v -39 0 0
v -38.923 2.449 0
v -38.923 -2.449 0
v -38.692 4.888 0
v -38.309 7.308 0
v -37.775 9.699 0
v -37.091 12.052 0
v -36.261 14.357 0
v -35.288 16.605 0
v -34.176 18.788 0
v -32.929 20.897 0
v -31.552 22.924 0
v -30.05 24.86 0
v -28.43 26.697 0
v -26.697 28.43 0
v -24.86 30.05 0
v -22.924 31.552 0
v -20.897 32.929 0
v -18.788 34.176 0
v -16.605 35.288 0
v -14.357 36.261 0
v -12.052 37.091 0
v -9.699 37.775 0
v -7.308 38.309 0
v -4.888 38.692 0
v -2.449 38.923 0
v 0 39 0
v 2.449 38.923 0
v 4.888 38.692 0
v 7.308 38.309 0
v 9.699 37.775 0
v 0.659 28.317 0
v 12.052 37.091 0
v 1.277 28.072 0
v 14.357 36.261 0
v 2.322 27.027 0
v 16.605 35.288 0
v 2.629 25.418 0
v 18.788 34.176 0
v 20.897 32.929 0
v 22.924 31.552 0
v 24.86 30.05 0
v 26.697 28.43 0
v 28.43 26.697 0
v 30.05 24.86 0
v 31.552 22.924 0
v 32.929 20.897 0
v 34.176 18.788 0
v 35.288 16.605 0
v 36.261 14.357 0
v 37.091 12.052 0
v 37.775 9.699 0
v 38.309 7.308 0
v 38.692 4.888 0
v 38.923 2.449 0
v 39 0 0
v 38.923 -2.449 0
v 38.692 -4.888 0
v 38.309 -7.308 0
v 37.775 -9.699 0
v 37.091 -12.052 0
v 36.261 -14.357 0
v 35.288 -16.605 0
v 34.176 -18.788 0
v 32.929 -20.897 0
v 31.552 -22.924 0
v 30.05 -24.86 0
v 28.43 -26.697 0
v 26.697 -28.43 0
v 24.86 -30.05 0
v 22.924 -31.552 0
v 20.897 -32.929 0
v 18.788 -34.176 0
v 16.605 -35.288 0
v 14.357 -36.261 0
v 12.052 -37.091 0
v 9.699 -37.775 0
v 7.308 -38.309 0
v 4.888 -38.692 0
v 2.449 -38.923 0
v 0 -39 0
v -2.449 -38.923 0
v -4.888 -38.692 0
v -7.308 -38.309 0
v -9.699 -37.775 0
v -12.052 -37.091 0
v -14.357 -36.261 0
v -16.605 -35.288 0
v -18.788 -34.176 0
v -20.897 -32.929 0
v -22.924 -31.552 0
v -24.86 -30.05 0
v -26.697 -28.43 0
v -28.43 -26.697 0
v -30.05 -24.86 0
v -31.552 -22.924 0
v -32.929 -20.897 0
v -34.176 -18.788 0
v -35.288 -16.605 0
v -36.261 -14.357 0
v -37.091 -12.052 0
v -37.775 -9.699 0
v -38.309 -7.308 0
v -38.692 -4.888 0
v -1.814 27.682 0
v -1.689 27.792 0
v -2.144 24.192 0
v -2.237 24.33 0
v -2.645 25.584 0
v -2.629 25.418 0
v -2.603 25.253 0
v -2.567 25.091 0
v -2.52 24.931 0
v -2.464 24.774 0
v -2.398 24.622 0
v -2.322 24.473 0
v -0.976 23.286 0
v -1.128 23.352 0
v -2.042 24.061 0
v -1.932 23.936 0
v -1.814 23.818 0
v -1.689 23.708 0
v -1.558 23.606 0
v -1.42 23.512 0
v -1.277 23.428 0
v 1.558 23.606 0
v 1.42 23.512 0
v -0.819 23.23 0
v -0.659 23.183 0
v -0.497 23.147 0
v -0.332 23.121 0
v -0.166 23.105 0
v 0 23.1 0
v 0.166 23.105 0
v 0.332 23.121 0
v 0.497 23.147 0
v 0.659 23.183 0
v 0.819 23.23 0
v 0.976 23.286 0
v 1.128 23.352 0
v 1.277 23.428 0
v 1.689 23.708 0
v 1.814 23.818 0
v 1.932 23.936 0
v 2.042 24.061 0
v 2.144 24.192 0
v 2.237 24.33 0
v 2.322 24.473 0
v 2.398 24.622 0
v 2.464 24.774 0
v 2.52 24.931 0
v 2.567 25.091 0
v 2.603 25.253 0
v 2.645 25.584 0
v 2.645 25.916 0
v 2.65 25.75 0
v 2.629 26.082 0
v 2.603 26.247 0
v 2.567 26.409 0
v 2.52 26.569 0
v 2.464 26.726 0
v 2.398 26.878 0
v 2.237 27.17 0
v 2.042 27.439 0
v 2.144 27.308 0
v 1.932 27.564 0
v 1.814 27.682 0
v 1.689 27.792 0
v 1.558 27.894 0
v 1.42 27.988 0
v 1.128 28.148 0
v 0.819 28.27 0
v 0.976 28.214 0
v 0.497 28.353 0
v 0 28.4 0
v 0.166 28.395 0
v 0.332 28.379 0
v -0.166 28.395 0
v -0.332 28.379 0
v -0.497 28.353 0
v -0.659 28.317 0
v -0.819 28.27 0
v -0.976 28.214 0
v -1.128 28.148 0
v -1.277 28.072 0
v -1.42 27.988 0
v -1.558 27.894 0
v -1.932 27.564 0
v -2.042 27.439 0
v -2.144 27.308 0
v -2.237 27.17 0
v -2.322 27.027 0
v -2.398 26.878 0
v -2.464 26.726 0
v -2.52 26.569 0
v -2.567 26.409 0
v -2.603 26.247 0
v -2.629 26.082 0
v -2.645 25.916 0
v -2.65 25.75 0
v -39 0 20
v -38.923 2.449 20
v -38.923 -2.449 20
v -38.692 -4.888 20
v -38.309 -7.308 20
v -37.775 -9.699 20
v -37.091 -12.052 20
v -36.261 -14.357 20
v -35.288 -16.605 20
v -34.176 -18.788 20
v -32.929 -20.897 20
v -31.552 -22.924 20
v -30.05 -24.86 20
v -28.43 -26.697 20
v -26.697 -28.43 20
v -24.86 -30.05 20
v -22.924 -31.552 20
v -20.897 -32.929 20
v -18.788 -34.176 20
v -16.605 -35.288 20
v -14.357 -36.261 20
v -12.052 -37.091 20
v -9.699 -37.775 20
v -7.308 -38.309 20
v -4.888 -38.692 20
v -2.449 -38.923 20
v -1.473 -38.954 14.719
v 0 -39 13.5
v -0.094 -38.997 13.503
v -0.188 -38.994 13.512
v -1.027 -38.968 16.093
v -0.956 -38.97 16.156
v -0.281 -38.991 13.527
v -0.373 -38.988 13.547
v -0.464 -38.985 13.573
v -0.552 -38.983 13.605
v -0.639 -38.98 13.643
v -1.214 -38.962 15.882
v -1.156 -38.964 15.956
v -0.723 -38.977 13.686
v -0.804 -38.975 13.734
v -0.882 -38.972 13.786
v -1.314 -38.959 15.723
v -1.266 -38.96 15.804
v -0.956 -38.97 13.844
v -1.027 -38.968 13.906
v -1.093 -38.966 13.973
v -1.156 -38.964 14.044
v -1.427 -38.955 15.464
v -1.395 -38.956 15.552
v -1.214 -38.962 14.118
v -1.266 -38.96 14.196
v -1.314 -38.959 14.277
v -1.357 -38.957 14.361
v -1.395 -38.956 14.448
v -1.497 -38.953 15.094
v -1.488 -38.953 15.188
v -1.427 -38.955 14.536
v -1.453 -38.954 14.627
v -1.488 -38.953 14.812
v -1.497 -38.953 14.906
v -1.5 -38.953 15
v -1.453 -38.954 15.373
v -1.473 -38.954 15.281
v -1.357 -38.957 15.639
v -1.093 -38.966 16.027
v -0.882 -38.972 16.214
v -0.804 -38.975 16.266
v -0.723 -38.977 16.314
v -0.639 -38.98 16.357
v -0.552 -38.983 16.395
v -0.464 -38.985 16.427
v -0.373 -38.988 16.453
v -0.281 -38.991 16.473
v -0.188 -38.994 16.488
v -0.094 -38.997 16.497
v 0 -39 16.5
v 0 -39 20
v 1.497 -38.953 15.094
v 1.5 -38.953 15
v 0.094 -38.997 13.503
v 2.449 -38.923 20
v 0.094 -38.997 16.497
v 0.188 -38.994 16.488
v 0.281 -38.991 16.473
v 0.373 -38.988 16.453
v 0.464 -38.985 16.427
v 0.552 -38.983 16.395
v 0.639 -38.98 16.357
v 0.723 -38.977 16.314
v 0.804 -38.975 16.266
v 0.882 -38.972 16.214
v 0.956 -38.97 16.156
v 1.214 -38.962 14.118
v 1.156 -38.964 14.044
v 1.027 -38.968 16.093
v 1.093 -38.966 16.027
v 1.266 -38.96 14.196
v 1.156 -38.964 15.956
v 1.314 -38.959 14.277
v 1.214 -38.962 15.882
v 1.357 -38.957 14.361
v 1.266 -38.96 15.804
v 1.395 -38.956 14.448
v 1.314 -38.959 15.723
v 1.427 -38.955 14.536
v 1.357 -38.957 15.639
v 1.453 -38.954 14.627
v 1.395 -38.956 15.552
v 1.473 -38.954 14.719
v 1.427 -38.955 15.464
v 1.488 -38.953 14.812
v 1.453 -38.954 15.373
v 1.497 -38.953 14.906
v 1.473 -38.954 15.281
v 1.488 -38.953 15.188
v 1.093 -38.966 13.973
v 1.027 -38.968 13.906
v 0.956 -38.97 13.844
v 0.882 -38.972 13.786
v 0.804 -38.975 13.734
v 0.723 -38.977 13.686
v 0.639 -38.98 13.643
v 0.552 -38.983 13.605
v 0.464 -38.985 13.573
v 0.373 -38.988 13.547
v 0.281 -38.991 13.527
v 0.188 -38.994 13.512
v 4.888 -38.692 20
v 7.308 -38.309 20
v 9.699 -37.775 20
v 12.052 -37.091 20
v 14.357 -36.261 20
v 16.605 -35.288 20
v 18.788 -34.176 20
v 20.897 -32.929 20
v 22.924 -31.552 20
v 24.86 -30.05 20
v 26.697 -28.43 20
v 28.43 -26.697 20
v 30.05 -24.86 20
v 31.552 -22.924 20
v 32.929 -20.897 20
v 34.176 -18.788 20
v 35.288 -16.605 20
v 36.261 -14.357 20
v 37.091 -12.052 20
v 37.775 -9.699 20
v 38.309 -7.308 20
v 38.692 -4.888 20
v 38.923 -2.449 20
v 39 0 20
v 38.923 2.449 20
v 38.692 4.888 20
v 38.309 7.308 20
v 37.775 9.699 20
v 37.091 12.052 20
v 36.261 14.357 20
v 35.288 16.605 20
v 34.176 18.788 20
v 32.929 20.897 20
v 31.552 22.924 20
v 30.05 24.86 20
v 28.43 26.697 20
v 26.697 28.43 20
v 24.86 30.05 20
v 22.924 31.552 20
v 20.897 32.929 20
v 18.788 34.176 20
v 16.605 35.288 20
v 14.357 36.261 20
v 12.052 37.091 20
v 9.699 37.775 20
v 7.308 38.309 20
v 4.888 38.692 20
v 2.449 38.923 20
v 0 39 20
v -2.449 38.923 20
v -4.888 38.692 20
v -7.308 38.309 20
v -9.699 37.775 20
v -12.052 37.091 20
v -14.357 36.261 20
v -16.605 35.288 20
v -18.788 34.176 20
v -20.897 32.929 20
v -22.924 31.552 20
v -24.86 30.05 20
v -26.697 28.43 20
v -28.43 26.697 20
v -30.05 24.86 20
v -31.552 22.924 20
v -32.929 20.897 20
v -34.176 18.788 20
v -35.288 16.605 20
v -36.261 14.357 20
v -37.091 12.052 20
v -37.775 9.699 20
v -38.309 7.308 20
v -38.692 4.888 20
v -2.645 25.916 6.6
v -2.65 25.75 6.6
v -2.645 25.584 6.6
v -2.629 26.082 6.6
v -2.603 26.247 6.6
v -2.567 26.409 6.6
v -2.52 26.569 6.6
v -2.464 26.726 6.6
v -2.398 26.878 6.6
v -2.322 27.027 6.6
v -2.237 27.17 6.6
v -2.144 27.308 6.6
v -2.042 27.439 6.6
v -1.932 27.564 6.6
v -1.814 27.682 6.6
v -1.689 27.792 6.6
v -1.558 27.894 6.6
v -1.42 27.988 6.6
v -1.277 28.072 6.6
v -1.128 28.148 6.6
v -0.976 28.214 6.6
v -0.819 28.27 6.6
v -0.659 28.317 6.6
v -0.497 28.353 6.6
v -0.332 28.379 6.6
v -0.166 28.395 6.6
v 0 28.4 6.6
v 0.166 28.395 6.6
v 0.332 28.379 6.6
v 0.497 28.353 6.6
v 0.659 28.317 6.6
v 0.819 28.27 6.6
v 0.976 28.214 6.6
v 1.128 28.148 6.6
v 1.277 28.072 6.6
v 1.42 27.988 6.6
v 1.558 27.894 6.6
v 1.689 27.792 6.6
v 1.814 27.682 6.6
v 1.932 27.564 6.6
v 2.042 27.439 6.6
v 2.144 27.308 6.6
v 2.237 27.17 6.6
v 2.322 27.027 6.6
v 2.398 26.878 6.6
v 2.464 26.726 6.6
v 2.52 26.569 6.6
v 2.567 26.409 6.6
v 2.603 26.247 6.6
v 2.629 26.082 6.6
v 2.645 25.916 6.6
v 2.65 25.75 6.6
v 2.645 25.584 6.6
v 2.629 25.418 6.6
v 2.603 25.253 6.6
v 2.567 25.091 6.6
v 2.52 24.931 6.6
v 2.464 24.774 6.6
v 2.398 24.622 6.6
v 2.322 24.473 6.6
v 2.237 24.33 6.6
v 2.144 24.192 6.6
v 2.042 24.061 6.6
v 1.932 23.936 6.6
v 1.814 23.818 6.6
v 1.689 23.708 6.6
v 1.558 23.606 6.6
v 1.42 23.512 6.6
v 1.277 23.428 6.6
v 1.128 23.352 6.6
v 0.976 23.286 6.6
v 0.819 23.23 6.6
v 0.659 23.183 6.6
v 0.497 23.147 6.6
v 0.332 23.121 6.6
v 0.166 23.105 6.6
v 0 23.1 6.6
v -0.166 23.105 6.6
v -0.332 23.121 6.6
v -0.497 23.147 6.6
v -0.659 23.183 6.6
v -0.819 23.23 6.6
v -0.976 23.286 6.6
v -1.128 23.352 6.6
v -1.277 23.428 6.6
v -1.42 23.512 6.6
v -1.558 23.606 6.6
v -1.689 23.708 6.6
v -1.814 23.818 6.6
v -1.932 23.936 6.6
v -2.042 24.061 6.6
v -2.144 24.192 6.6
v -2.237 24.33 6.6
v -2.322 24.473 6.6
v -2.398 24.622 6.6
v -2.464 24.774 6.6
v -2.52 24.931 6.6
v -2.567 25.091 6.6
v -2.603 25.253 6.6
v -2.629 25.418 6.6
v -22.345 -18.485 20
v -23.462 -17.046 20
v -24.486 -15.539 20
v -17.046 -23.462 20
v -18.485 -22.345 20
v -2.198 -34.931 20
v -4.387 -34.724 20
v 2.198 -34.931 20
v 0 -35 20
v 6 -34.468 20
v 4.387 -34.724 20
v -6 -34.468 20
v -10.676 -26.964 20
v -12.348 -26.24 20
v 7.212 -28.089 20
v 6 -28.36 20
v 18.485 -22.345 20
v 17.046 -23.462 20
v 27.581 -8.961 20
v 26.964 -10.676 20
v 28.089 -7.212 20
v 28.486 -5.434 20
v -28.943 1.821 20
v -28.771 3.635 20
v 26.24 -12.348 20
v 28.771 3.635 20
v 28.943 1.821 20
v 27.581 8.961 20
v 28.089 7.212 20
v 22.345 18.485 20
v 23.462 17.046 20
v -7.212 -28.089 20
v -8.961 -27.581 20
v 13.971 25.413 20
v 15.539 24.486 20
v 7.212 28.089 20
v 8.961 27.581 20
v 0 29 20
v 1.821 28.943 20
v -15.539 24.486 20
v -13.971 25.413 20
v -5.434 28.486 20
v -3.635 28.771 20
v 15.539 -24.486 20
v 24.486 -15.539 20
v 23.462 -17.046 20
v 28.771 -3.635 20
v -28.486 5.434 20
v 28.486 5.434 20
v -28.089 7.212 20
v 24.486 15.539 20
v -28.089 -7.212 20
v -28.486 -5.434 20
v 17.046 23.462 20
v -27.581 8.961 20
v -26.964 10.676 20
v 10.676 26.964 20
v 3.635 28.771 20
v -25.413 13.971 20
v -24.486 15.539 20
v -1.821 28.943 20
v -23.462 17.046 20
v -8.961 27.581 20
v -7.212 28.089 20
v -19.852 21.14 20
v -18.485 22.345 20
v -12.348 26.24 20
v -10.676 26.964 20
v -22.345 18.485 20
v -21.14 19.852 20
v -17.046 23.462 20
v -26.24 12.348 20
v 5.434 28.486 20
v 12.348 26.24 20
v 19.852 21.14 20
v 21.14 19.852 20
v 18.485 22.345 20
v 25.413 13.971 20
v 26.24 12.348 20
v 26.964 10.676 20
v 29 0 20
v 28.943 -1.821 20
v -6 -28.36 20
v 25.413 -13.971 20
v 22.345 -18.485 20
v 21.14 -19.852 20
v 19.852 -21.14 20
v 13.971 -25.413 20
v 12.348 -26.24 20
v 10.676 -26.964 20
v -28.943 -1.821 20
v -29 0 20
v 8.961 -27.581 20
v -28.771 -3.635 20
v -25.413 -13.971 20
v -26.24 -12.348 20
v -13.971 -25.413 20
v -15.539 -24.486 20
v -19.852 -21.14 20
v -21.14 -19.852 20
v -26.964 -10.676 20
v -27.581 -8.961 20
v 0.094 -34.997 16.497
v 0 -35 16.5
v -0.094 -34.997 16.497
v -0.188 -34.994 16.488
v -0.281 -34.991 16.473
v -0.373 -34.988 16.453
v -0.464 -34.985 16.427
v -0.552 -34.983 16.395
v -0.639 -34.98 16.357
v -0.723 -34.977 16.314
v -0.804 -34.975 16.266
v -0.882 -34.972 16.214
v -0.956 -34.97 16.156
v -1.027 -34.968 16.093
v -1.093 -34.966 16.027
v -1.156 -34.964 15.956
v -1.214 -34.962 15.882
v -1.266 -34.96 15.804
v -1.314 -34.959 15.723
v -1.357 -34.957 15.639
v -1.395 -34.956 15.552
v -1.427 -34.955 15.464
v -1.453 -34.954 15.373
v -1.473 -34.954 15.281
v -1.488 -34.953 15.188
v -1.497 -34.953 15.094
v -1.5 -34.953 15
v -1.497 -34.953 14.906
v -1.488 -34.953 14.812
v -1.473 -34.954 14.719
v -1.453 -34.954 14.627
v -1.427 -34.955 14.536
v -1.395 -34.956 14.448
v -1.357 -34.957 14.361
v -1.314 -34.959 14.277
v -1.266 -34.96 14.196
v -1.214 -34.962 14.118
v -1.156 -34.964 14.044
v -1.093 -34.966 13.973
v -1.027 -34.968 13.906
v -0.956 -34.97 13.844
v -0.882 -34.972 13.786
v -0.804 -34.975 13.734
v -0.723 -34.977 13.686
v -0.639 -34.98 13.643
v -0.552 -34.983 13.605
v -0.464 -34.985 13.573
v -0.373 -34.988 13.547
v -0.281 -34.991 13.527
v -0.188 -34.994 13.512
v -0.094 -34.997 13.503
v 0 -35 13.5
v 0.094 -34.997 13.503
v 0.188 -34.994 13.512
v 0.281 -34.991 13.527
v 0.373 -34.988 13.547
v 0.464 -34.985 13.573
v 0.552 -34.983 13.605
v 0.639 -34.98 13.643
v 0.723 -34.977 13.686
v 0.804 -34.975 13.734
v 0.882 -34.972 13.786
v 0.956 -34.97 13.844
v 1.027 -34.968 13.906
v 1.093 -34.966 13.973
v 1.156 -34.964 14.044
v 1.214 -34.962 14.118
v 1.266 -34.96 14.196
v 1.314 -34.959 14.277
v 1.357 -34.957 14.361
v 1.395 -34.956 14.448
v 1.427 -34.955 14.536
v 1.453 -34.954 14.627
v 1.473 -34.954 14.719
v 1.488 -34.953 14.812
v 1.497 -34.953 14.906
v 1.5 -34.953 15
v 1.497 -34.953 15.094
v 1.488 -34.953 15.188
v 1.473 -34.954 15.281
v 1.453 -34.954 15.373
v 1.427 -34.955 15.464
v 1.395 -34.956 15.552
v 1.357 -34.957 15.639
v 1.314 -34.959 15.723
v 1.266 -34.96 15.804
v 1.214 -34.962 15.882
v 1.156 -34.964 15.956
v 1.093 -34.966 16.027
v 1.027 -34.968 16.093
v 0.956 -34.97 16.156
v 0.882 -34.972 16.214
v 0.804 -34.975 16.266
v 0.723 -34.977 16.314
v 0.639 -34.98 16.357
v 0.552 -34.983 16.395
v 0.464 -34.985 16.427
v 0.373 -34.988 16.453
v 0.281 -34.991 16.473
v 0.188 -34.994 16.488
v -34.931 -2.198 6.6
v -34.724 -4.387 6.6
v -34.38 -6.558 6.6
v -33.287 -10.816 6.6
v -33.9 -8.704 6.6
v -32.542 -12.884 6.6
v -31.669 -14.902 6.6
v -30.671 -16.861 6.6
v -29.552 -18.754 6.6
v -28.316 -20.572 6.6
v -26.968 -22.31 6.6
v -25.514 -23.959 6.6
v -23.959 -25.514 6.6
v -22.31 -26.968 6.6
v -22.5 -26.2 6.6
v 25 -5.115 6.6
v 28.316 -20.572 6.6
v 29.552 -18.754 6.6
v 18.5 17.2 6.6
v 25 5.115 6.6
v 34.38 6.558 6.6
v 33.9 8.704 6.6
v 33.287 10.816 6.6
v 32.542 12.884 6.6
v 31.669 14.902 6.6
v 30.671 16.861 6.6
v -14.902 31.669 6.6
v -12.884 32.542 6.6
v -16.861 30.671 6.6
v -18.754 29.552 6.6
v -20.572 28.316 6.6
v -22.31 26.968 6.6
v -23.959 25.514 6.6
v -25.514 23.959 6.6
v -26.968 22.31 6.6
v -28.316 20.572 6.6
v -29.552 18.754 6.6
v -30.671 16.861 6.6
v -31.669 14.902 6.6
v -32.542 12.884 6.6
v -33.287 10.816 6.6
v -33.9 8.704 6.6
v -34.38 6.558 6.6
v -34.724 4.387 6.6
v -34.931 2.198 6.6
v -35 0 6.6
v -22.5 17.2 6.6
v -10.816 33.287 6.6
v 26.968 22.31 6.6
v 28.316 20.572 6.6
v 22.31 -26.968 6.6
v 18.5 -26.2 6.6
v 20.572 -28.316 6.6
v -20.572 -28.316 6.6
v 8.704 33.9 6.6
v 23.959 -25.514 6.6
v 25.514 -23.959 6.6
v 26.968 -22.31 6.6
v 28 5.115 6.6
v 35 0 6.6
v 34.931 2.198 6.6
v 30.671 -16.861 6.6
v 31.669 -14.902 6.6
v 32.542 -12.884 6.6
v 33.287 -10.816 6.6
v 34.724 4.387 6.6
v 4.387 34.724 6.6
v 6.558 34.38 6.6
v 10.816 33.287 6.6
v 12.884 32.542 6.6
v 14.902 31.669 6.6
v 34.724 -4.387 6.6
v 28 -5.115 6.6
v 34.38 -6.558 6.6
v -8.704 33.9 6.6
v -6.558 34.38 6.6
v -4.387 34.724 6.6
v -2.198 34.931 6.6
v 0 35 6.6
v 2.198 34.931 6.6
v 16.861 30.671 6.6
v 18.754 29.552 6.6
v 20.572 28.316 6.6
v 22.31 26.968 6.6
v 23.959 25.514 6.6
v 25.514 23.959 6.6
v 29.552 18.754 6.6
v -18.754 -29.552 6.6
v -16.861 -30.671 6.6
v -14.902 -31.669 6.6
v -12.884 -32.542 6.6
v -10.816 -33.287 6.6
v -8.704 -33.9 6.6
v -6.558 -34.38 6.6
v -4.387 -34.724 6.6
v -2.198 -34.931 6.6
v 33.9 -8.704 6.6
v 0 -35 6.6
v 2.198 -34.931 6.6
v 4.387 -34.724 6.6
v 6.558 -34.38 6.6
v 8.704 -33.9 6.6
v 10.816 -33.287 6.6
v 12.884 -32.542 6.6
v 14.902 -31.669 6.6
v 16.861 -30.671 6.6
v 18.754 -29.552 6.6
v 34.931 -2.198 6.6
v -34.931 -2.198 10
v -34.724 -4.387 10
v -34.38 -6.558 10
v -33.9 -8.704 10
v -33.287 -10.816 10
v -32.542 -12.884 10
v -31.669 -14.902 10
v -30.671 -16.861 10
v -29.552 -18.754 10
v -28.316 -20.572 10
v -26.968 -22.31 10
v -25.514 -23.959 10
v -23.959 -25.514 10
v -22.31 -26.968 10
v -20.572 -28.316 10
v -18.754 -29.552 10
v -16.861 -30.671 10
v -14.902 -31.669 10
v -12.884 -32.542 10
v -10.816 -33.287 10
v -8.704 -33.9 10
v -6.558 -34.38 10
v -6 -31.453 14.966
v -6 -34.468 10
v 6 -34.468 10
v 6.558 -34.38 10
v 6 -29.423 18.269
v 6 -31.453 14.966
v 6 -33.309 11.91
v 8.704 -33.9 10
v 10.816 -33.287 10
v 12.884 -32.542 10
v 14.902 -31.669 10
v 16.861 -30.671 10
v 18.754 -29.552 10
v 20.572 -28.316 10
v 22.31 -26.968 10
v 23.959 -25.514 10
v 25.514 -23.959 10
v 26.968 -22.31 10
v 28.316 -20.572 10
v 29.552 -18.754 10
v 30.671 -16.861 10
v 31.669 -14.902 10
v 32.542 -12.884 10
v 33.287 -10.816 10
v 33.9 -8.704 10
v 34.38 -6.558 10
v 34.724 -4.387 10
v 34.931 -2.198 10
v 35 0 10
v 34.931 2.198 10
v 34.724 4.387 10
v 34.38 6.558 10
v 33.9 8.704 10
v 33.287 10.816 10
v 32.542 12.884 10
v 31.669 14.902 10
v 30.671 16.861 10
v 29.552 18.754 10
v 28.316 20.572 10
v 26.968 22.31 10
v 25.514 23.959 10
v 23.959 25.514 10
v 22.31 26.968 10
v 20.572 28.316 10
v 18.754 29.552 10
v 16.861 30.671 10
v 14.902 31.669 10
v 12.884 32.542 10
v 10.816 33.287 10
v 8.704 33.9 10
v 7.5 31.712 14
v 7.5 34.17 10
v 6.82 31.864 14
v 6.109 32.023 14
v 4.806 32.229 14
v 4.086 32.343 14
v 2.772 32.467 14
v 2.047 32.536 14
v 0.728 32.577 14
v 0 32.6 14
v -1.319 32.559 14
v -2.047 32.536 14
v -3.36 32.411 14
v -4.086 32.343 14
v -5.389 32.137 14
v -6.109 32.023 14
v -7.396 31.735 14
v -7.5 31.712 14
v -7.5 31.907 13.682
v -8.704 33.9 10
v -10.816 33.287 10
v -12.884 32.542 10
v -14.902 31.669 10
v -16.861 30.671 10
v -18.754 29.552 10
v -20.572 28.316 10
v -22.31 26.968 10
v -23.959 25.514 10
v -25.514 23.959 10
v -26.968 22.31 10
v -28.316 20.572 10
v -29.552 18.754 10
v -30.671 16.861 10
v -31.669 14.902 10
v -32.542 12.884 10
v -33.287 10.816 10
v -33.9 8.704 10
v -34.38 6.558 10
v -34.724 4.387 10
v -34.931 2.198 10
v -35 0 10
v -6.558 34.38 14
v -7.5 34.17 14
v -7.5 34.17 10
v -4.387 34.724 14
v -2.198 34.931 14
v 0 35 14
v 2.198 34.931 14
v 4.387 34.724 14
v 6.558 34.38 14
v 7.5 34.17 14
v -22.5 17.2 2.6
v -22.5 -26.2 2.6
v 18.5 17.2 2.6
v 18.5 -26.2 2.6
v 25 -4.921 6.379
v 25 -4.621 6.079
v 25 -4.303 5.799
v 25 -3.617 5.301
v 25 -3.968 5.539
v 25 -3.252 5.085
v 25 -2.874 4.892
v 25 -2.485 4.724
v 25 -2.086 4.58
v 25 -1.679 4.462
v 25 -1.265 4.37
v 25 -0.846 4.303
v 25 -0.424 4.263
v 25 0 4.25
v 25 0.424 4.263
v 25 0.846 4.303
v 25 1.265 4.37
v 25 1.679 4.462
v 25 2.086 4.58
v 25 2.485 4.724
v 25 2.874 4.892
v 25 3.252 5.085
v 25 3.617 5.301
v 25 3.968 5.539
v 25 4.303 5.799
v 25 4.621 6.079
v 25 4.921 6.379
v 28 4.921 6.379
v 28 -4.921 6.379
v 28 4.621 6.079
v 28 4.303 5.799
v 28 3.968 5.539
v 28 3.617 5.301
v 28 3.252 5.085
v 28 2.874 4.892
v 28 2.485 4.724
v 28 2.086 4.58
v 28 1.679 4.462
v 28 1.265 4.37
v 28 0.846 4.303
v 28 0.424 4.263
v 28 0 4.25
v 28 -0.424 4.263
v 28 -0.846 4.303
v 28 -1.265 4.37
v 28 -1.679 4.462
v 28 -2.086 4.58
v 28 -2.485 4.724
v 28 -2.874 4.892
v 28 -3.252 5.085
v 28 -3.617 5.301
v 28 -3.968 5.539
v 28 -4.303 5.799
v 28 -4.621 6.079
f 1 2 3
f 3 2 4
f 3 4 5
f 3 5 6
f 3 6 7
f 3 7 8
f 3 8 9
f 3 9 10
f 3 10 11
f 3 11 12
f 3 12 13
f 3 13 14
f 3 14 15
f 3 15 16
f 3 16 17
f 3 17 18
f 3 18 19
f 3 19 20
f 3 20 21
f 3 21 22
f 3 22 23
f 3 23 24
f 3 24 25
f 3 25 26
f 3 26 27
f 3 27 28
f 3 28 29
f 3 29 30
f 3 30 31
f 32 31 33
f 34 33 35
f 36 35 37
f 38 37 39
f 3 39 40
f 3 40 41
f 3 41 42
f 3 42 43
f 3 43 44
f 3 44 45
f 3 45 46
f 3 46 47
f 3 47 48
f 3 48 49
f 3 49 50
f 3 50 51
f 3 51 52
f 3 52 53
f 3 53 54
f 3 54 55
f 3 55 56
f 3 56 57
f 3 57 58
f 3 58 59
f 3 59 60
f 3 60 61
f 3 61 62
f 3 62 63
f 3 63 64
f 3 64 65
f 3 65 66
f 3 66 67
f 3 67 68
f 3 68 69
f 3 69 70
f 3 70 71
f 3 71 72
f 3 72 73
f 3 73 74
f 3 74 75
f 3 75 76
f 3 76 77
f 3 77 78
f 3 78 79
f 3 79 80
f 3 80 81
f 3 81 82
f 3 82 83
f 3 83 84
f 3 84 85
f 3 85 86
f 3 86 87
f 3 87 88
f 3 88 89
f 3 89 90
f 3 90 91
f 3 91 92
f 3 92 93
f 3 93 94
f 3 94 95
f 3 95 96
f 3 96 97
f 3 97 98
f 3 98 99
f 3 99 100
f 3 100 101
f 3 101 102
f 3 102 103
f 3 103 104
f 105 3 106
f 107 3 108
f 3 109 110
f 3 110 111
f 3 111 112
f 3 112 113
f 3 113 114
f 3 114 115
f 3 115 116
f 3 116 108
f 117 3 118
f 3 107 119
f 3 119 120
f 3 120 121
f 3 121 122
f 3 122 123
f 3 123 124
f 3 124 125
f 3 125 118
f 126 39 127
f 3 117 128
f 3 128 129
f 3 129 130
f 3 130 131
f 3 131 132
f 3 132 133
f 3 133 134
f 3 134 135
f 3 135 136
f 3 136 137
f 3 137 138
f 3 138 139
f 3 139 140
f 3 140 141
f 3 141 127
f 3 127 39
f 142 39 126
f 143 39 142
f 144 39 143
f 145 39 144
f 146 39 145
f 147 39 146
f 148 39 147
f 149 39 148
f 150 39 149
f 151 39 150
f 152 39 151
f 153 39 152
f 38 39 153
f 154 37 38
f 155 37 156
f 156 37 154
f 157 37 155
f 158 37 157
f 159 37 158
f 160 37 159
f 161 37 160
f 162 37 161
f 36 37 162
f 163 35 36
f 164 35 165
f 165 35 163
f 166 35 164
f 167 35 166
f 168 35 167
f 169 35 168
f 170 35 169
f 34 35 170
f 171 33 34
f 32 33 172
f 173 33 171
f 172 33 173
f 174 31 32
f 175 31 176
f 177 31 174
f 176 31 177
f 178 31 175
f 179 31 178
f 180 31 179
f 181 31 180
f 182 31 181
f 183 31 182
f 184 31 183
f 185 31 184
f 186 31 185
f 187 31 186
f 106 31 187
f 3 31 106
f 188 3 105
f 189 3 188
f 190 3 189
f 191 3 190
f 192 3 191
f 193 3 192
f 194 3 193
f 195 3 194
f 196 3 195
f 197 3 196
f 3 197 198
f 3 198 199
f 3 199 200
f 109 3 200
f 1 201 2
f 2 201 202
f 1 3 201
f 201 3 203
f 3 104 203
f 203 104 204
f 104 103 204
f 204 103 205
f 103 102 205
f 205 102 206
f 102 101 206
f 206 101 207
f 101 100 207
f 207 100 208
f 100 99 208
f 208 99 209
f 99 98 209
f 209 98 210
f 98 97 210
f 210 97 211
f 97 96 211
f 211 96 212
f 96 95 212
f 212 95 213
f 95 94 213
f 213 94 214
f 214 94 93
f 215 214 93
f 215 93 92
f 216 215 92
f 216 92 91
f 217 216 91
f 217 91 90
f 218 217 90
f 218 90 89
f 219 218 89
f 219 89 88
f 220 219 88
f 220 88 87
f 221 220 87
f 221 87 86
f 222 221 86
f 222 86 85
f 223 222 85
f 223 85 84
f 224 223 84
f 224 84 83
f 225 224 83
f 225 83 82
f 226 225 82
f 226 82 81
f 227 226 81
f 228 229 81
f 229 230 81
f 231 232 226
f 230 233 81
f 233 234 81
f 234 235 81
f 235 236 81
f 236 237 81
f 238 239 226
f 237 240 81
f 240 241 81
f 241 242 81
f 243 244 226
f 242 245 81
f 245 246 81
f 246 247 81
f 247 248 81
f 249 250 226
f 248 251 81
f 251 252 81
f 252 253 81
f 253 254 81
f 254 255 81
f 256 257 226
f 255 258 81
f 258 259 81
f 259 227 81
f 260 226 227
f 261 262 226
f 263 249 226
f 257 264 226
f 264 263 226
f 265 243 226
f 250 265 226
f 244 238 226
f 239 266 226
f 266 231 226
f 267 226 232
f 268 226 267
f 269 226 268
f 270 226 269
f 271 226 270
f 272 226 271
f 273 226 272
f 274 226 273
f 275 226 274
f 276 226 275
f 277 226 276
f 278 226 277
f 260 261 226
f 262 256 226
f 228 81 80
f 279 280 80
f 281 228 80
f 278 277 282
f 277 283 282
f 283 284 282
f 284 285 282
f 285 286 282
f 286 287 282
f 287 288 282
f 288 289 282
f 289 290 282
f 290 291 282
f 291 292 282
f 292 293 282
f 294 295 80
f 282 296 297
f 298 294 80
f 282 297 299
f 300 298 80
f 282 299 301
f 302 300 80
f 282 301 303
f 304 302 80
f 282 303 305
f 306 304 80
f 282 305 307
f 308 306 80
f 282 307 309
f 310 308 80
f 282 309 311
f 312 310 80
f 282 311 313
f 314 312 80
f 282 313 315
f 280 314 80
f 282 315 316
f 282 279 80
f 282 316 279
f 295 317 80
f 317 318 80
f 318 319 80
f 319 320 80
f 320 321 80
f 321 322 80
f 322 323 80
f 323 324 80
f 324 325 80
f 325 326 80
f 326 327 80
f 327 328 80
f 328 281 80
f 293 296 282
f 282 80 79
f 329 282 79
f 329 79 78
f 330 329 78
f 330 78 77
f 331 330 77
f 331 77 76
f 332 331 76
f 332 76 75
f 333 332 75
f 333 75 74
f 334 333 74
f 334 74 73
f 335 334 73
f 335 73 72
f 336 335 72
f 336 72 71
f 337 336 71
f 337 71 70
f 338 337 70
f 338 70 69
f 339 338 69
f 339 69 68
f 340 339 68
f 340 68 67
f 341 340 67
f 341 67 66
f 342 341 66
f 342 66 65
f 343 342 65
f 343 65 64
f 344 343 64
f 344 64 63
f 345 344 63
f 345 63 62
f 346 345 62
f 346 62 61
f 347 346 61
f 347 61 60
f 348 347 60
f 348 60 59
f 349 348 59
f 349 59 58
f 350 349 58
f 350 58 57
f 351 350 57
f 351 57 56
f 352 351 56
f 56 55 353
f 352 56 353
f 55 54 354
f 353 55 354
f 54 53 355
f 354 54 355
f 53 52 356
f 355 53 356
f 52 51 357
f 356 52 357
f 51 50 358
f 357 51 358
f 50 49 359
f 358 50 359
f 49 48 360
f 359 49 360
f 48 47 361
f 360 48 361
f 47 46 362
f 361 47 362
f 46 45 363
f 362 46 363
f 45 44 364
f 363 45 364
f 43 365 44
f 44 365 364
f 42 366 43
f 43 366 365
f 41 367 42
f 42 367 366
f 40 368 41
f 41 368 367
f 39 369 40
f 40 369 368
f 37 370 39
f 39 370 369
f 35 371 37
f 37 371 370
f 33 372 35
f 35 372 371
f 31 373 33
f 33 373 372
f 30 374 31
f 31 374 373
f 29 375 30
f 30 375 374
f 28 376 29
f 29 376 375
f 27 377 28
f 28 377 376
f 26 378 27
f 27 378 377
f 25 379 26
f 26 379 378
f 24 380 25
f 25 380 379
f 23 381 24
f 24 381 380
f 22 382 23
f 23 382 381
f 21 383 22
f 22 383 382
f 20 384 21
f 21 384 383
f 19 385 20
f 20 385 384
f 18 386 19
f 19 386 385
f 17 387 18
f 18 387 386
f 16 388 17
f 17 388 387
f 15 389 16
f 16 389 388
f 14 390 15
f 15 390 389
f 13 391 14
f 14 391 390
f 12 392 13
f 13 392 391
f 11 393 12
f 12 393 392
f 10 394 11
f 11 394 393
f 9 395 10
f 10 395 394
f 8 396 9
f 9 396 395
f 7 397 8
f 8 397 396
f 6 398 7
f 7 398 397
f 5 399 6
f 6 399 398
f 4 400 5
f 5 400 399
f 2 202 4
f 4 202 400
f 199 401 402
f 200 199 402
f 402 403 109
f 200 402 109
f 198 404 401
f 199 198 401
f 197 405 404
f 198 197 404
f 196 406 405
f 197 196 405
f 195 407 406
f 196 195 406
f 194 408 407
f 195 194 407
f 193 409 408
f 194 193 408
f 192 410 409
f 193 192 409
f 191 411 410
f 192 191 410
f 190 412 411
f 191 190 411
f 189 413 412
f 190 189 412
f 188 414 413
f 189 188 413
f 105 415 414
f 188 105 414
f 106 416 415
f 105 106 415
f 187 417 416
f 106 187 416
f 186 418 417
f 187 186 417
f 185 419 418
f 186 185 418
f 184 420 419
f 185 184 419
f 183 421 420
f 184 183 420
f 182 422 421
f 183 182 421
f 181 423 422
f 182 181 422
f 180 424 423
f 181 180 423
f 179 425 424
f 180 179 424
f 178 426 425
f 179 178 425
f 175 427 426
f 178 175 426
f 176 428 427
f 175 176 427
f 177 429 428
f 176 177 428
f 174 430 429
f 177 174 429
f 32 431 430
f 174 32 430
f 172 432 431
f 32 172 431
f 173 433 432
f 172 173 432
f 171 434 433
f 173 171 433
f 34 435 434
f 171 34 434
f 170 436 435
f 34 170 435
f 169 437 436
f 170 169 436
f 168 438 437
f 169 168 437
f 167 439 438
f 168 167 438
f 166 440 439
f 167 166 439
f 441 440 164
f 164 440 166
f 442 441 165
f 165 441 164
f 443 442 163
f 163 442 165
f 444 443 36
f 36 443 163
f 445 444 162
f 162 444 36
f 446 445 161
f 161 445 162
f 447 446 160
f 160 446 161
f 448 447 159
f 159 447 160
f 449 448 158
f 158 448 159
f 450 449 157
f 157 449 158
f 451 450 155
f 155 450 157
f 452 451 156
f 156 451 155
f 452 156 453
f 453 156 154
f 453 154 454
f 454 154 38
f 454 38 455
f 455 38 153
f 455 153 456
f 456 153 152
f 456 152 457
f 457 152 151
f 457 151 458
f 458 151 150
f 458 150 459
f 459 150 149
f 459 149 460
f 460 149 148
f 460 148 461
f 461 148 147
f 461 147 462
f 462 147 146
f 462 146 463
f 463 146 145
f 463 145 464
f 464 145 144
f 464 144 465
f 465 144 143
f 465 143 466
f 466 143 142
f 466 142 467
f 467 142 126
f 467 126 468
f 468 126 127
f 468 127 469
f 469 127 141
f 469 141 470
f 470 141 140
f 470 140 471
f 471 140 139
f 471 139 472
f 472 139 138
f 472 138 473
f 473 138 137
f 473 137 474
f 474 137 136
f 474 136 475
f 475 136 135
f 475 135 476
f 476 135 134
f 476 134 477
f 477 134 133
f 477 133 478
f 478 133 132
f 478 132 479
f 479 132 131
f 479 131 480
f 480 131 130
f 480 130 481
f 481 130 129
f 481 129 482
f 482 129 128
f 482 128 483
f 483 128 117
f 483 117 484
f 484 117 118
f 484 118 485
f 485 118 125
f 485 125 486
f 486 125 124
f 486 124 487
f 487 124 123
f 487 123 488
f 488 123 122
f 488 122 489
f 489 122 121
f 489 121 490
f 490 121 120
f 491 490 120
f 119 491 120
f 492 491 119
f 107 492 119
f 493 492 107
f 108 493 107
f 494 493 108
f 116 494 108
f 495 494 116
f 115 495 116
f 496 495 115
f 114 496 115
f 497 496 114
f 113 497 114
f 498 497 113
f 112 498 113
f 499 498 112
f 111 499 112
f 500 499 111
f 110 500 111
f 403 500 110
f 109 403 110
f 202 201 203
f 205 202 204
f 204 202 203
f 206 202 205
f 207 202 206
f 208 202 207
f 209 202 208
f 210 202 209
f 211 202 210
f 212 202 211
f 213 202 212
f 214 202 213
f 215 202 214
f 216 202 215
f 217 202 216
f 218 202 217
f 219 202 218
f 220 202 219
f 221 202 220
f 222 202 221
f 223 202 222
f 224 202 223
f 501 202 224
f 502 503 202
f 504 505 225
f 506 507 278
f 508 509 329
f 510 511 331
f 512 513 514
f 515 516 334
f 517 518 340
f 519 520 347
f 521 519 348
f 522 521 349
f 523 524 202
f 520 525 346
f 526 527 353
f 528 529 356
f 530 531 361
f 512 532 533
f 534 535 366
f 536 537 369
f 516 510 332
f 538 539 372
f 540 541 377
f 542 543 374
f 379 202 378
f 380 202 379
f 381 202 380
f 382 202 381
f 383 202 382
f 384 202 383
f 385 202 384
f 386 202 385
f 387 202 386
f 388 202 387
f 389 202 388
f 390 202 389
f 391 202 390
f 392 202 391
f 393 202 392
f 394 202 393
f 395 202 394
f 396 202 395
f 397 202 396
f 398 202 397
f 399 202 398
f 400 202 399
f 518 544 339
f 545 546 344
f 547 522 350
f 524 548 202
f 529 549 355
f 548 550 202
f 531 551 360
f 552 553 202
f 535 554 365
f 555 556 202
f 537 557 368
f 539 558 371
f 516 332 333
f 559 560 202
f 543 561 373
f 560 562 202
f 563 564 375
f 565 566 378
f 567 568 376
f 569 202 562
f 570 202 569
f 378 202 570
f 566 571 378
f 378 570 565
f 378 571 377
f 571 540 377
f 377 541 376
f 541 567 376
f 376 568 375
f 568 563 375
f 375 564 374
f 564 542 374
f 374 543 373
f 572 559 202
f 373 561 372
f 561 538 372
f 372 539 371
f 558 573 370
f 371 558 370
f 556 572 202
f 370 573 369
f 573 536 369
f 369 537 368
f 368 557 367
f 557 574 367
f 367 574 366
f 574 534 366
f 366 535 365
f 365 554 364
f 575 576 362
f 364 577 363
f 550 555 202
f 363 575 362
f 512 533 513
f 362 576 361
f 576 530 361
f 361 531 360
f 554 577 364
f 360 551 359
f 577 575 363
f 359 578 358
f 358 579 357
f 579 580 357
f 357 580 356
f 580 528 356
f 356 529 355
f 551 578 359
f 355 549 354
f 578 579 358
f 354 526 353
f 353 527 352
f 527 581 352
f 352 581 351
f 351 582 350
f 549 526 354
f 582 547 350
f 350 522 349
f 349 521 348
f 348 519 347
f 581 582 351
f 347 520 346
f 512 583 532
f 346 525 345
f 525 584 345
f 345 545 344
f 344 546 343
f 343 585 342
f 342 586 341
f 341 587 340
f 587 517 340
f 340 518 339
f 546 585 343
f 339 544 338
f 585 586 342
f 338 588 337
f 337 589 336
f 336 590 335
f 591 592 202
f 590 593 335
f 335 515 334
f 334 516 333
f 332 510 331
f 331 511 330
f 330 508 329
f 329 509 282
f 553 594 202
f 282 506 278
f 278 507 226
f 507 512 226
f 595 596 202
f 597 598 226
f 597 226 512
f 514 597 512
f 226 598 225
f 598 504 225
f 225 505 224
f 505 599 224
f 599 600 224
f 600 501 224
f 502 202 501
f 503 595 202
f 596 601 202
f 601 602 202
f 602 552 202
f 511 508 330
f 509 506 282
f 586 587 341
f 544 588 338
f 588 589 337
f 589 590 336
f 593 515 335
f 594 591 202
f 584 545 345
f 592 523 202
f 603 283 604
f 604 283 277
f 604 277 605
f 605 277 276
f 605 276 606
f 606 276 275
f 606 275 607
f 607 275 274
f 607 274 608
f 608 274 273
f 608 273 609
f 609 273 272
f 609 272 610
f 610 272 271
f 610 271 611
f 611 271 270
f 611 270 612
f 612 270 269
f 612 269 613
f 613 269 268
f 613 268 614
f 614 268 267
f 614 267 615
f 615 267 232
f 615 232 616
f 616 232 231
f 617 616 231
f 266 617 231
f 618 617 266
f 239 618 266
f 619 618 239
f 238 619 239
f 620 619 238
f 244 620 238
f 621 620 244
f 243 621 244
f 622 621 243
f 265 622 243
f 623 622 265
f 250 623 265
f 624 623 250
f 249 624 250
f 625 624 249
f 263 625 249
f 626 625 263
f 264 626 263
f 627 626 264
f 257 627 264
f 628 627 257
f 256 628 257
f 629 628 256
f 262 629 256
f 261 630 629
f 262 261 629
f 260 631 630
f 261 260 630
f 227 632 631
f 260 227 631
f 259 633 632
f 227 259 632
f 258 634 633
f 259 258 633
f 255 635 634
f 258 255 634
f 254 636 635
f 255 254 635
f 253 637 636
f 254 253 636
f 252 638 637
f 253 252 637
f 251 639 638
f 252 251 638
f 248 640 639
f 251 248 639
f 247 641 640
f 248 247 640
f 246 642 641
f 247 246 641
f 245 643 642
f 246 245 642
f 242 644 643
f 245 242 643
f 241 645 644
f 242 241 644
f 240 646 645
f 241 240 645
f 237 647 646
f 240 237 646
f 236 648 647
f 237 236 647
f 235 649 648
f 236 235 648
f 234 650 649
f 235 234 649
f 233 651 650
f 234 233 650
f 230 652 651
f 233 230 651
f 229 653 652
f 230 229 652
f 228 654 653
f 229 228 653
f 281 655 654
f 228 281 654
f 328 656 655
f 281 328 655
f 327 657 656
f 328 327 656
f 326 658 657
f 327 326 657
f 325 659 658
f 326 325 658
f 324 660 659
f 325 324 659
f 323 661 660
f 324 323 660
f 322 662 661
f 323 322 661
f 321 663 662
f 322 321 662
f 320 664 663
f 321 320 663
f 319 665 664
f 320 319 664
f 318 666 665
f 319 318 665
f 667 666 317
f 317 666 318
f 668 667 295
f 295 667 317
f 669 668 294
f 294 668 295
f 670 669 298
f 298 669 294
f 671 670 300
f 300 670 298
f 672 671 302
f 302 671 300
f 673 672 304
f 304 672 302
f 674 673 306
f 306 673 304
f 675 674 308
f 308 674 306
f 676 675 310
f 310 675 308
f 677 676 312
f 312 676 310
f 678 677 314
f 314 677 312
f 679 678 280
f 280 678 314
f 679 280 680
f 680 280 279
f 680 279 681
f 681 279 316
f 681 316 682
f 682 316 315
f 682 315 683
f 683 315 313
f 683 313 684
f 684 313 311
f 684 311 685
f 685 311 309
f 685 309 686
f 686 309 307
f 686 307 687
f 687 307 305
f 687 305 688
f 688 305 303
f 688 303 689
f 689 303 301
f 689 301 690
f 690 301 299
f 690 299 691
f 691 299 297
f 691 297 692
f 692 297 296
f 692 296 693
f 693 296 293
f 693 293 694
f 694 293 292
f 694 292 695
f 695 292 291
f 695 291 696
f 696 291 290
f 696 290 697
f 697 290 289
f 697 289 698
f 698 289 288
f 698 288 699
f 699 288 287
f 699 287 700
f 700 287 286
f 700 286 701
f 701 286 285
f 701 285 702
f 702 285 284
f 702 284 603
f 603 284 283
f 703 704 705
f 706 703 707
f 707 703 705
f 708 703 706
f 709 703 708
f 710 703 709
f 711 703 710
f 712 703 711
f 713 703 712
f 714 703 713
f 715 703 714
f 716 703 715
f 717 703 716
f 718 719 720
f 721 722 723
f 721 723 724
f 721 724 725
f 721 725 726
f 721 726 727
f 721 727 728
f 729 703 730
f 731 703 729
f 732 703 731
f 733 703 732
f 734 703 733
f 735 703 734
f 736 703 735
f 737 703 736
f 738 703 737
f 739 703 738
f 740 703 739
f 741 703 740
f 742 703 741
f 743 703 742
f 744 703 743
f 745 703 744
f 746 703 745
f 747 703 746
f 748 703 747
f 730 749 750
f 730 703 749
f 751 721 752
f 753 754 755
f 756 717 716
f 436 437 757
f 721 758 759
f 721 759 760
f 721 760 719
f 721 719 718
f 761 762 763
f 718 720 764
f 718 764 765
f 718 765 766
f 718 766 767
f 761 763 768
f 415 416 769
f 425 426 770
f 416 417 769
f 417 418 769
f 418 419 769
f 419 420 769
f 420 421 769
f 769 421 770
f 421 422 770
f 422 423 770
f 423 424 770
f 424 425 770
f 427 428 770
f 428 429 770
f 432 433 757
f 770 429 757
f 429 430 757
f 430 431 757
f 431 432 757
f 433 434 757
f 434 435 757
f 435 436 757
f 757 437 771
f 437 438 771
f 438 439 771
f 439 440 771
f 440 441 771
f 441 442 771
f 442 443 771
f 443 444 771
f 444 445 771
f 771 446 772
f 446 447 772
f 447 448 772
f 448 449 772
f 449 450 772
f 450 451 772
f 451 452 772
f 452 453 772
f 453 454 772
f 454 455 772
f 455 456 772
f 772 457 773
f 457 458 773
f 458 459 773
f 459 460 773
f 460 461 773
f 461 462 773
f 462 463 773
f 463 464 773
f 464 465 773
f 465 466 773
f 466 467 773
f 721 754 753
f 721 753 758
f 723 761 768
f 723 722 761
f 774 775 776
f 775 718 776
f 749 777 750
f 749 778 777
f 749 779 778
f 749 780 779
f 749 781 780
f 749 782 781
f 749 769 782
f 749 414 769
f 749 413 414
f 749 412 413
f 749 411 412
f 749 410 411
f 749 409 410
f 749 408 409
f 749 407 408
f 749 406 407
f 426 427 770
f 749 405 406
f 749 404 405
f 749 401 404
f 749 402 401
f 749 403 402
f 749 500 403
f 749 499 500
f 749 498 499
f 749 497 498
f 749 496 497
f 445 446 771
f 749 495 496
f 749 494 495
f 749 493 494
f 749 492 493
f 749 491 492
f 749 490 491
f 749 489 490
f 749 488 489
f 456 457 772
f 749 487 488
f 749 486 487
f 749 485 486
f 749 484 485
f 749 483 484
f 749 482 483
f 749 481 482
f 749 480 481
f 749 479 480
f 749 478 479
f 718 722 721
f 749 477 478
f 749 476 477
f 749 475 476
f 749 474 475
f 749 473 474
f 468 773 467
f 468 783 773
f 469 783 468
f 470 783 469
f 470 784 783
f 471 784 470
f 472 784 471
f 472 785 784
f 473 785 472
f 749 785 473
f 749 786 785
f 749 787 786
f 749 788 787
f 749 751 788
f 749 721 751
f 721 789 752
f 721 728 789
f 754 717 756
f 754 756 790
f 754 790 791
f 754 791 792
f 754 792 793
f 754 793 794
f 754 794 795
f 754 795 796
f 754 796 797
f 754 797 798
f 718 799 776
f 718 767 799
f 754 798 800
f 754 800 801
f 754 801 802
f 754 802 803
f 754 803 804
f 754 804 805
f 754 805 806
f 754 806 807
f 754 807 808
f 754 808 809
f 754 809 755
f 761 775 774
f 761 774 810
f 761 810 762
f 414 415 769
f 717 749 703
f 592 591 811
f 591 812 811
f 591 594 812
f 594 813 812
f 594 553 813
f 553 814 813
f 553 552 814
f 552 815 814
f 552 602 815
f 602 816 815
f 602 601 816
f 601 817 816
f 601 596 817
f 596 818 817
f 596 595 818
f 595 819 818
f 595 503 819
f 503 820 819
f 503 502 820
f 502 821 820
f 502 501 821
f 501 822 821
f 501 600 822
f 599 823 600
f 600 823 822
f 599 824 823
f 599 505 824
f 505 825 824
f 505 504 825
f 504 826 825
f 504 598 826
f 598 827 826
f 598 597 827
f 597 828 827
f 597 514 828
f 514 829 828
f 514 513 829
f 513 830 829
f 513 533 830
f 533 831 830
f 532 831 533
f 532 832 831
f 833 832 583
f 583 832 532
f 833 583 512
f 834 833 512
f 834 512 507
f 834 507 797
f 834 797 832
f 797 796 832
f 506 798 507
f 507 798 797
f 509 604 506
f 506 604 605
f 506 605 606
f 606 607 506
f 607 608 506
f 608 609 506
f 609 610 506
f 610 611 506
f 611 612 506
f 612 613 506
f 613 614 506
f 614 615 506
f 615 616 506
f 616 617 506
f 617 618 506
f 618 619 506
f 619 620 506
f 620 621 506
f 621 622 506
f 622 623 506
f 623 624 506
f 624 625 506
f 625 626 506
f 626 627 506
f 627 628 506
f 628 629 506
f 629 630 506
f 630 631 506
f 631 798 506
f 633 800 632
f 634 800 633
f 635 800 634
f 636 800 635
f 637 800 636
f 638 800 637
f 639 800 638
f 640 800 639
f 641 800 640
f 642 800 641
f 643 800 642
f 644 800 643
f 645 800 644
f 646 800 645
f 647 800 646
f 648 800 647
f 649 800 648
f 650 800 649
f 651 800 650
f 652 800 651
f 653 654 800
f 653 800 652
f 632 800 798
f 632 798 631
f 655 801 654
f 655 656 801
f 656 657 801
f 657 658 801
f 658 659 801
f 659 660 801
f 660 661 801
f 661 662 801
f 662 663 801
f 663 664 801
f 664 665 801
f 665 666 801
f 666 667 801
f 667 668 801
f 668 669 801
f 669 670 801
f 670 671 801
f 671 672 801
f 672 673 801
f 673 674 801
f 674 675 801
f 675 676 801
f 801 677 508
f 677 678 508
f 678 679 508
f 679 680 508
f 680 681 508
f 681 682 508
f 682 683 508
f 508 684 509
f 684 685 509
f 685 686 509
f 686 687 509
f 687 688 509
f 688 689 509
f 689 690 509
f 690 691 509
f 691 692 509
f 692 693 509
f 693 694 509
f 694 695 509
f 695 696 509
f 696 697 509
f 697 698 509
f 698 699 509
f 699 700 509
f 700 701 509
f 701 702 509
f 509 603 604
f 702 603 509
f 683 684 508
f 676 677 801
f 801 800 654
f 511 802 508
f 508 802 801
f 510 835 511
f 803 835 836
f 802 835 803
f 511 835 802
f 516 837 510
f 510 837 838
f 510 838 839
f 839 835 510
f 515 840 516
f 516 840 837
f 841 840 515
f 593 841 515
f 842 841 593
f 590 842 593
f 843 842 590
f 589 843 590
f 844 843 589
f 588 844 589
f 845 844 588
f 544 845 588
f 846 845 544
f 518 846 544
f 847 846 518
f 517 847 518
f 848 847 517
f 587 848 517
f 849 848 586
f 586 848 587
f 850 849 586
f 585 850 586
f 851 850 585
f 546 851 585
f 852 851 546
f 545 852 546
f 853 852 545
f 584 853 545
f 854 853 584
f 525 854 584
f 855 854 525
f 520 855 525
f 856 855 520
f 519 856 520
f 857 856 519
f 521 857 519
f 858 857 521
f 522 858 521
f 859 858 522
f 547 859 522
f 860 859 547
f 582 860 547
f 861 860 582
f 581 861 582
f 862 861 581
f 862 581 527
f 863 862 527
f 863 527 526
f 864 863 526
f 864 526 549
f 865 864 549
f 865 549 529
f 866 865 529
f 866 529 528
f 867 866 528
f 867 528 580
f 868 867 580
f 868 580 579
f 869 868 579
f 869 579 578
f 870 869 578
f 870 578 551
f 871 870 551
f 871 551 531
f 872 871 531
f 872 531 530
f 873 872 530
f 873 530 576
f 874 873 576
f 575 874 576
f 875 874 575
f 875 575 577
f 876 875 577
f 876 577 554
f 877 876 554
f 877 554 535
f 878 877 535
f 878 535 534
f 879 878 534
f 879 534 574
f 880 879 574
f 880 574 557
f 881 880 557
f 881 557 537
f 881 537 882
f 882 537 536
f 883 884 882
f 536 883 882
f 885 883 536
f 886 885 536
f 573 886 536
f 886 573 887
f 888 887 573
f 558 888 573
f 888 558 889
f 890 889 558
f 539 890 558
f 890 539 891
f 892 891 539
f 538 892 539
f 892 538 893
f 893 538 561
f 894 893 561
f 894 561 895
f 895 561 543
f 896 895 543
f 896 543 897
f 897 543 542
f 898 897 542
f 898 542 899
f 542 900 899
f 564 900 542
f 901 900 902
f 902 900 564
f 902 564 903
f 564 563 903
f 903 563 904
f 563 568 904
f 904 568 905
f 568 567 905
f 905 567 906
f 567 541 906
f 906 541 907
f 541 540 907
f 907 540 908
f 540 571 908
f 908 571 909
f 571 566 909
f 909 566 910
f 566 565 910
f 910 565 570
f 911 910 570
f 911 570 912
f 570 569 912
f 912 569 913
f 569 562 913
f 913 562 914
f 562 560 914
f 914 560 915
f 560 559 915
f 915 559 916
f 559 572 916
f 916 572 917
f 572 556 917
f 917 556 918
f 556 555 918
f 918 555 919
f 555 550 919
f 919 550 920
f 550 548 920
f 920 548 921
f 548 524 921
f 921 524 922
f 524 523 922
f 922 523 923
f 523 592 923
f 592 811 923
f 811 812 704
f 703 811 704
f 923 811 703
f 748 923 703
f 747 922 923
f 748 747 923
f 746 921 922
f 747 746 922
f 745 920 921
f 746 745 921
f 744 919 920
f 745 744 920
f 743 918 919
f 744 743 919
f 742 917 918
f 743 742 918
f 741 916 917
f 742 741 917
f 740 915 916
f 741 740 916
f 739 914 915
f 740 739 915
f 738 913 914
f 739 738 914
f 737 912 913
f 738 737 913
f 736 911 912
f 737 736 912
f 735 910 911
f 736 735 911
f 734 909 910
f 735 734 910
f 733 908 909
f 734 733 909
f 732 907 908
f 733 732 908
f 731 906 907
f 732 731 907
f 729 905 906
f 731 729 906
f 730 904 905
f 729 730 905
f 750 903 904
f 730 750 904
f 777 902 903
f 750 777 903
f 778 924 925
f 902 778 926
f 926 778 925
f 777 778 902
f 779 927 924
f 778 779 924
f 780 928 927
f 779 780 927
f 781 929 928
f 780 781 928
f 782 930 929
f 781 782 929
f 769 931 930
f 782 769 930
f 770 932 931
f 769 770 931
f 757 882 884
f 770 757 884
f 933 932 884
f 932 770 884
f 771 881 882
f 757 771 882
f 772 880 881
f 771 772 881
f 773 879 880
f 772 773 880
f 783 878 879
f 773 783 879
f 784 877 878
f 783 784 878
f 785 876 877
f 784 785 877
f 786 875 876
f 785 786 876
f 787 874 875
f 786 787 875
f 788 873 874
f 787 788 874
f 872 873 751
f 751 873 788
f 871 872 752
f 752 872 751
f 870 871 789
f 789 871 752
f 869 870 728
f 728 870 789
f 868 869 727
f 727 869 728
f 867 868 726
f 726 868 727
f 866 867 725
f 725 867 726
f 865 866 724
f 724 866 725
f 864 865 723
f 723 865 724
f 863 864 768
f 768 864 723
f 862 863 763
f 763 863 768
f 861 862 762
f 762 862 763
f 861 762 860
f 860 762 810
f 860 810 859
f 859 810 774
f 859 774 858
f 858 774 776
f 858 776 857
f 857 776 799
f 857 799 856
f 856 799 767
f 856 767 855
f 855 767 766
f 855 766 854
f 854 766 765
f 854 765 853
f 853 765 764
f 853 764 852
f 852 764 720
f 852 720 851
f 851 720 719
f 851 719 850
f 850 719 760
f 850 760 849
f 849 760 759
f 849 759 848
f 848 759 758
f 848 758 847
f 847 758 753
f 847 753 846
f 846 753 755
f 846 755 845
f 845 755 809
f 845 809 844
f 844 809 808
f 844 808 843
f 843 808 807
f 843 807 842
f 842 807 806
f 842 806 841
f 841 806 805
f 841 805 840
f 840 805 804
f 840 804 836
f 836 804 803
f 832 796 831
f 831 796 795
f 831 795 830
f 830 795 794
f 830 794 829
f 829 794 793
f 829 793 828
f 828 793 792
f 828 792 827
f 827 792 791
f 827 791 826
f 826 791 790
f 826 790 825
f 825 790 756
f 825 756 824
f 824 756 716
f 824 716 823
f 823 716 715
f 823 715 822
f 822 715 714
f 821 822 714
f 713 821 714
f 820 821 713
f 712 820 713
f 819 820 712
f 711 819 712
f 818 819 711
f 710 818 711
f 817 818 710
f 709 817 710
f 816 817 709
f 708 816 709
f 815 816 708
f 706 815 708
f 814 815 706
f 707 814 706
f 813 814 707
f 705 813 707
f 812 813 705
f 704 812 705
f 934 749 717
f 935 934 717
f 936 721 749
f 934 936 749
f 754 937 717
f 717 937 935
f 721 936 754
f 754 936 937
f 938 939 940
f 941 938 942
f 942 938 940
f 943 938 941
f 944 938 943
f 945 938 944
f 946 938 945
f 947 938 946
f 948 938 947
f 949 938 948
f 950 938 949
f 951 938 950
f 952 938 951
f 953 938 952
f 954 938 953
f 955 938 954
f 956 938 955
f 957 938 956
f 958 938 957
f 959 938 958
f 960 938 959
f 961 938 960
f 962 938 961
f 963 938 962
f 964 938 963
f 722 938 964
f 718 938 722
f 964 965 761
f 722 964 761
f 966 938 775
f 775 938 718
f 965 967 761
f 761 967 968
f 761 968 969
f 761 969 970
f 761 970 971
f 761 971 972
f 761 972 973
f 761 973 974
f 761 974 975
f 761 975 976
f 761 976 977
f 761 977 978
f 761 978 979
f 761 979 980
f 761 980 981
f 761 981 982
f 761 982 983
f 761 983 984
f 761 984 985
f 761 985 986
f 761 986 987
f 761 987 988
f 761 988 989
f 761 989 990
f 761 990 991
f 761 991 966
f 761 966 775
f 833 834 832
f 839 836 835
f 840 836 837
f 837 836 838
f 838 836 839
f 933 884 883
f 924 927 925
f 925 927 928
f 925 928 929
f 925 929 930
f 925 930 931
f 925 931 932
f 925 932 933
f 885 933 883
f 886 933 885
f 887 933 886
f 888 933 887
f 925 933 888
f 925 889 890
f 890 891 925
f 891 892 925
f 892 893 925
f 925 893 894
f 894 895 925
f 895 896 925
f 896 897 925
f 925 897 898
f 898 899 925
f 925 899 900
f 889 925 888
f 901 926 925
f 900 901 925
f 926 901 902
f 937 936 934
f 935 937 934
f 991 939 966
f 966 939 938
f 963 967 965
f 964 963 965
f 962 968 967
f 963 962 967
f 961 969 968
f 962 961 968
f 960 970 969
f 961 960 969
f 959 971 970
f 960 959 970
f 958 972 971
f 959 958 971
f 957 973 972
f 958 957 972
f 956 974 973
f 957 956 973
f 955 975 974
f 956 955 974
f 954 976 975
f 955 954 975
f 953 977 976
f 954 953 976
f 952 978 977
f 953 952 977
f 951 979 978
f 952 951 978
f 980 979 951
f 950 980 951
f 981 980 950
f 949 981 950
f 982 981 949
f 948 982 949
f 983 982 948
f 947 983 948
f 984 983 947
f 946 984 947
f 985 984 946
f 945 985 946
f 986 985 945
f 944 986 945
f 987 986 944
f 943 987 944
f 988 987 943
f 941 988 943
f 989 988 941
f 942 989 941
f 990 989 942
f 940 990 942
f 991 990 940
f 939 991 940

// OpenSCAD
//////////////////
//Parameters
//////////////////
$fn = 100;
window_depth = 1.6;
window_diameter = 25;
window_lip_depth = 1;
window_lip_width = 3;
wall_thickness = 4;
cover_diameter = 78;
cover_height = 10;
board_width = 41;
board_height = 43.4;
board_thickness = 4;
board_x_shift = 2;
board_y_shift = 4.5;
led_diameter = 5.0;
circle_kerf = 0.3;
back_ring_height = 10;
back_ring_width = 10;
back_top_notch_width = 15;
back_top_notch_height = 4;
back_bottom_notch_width = 12;
back_bottom_notch_height = 10;
screw_hole_diameter = 3;
screw_offset = 5;
base_hole_diameter = 20;
base_kerf = 1.1;
mount_hole_diameter = 4.5;
nut_hole_length = 6.6;
nut_hole_width = 2.6;
buzzer_height = 3;
buzzer_diameter = 13.5;
buzzer_x_offset = 25;
buzzer_y_offset = 0;
buzzer_z_offset = 11;

///////////////////
// renders
///////////////////

//translate([0,0,cover_height+back_ring_height]) rotate(a=180,v=[0,1,0]) 
//	base_plate(cover_diameter);
rfid_cover(cover_diameter,cover_height);
//rotate(a=180,v=[1,0,0]) 
//rfid_window(window_diameter-circle_kerf,window_depth,window_lip_width-(circle_kerf/2),window_lip_depth);

// modules


module rfid_window(window_diameter,window_depth,lip_width,lip_thick) {
	cylinder(d=window_diameter,h=window_depth);
	translate([0,0,window_depth]) cylinder(d=(2*lip_width+window_diameter),h=lip_thick);

}

module rfid_cover(diameter,height) {
	front_height = window_depth+window_lip_depth;
   inner_height = height-(front_height+board_thickness);
   inner_diameter = (diameter-(2*wall_thickness));
	inner_back_diameter = (diameter-(back_ring_width*2));
   difference() {
		// Main body
		cylinder(d=diameter,h=height);
		// Create outside walls by subtracting a cylinder
		translate([0,0,(front_height+board_thickness)]) 
			cylinder(d=inner_diameter,h=inner_height+.1);
		// Remove material to create window lip
		//translate([0,0,window_depth])
		//	cylinder(d=(window_diameter+(window_lip_width*2)+circle_kerf),h=window_lip_depth+.1);
		// Remove matrial to create window opening
		//translate([0,0,0])
		//	cylinder(d=(window_diameter+circle_kerf),h=window_depth+.1);
		// Create opening for RFID board to sit inside of.
		translate([-(board_x_shift+board_width/2),-(board_y_shift+board_height/2),front_height])
			cube([board_width,board_height,board_thickness]);
		// Create a hole for LED
		translate([0,((cover_diameter/4)+(window_diameter/4)),0])
			cylinder(d=(led_diameter+circle_kerf),h=(front_height+board_thickness+.1));
		// Remove buzzer cavity
		translate([buzzer_x_offset,buzzer_y_offset,buzzer_z_offset])
			rotate(a=90,v=[0,1,0])
				cylinder(d=buzzer_diameter,h=buzzer_height);
	}
	difference() {
		// More base meat for transition
		translate([0,0,height])
			cylinder(d=diameter,h=back_ring_height);
		// Remove a cone section to make swept walls
		translate([0,0,height])
			cylinder(d1=inner_diameter,d2=inner_back_diameter,h=back_ring_height);
		// Remove the Top Notch (built of intersection of inner wall cylinder and cube for notch)
		intersection() {
			translate([0,0,height])
				cylinder(d=inner_diameter,h=back_ring_height);
			translate([-back_top_notch_width/2,0,height])
				cube([back_top_notch_width,diameter/2,back_top_notch_height]);
		}
		// Remove the Bottom Notch (built of intersection of inner wall cylinder and cube for notch)
		intersection() {
			translate([0,0,height])
				cylinder(d=inner_diameter,h=back_ring_height);
			translate([-back_bottom_notch_width/2,-diameter/2,(height+back_ring_height-back_bottom_notch_height)])
				cube([back_bottom_notch_width,diameter/2,back_bottom_notch_height]);
		}
		// Remove screw hole for bottom notch
		translate([0,0,(height+back_ring_height-screw_offset)])
			rotate(a=90,v=[1,0,0])
				cylinder(d=screw_hole_diameter,h=diameter);
	}

}

module base_plate(diameter) {
   inner_diameter = (diameter-(2*wall_thickness)-base_kerf);
	inner_back_diameter = (diameter-(back_ring_width*2))-base_kerf;
	nut_hole_offset = screw_offset-3.8;
	difference() {
		cylinder(d=inner_back_diameter,h=back_ring_height);
		cylinder(d=base_hole_diameter,h=back_ring_height);
		translate ([0,0,wall_thickness]) cylinder(d=inner_back_diameter-(2*wall_thickness),h=back_ring_height);
		for(r=[0:120:360]) {
			rotate(a=r,v=[0,0,1]) translate ([0,(inner_back_diameter/4)+(base_hole_diameter/4),0]) cylinder(h=back_ring_height,d=mount_hole_diameter);
		}
	}
	//  Top Notch (built of intersection of inner wall cylinder and cube for notch)
	intersection() {
		translate([0,0,0])
			cylinder(d=inner_diameter,h=back_ring_height);
		translate([-((back_top_notch_width/2)-base_kerf),(inner_back_diameter/2)-wall_thickness,back_ring_height-back_top_notch_height])
			cube([back_top_notch_width-(base_kerf*2),(diameter/2)-(base_hole_diameter/2),back_top_notch_height]);
	}
	// Bottom Notch (built of intersection of inner wall cylinder and cube for notch)
	difference() {
		intersection() {
			translate([0,0,height])
				cylinder(d=inner_diameter,h=back_ring_height);
			translate([-((back_bottom_notch_width/2)-circle_kerf),-inner_diameter/2,(height+back_ring_height-back_bottom_notch_height)])
				cube([back_bottom_notch_width-(circle_kerf*2),(inner_diameter/2)-((inner_back_diameter/2)-wall_thickness),back_bottom_notch_height]);
		}
		// Remove screw hole for bottom notch
		translate([0,0,(screw_offset)])
			rotate(a=90,v=[1,0,0])
				cylinder(d=screw_hole_diameter,h=diameter);

		translate([-nut_hole_length/2,-((inner_diameter/4)+(inner_back_diameter/4)),nut_hole_offset])
			cube([nut_hole_length,nut_hole_width,back_ring_height-nut_hole_offset]);
	}
}
